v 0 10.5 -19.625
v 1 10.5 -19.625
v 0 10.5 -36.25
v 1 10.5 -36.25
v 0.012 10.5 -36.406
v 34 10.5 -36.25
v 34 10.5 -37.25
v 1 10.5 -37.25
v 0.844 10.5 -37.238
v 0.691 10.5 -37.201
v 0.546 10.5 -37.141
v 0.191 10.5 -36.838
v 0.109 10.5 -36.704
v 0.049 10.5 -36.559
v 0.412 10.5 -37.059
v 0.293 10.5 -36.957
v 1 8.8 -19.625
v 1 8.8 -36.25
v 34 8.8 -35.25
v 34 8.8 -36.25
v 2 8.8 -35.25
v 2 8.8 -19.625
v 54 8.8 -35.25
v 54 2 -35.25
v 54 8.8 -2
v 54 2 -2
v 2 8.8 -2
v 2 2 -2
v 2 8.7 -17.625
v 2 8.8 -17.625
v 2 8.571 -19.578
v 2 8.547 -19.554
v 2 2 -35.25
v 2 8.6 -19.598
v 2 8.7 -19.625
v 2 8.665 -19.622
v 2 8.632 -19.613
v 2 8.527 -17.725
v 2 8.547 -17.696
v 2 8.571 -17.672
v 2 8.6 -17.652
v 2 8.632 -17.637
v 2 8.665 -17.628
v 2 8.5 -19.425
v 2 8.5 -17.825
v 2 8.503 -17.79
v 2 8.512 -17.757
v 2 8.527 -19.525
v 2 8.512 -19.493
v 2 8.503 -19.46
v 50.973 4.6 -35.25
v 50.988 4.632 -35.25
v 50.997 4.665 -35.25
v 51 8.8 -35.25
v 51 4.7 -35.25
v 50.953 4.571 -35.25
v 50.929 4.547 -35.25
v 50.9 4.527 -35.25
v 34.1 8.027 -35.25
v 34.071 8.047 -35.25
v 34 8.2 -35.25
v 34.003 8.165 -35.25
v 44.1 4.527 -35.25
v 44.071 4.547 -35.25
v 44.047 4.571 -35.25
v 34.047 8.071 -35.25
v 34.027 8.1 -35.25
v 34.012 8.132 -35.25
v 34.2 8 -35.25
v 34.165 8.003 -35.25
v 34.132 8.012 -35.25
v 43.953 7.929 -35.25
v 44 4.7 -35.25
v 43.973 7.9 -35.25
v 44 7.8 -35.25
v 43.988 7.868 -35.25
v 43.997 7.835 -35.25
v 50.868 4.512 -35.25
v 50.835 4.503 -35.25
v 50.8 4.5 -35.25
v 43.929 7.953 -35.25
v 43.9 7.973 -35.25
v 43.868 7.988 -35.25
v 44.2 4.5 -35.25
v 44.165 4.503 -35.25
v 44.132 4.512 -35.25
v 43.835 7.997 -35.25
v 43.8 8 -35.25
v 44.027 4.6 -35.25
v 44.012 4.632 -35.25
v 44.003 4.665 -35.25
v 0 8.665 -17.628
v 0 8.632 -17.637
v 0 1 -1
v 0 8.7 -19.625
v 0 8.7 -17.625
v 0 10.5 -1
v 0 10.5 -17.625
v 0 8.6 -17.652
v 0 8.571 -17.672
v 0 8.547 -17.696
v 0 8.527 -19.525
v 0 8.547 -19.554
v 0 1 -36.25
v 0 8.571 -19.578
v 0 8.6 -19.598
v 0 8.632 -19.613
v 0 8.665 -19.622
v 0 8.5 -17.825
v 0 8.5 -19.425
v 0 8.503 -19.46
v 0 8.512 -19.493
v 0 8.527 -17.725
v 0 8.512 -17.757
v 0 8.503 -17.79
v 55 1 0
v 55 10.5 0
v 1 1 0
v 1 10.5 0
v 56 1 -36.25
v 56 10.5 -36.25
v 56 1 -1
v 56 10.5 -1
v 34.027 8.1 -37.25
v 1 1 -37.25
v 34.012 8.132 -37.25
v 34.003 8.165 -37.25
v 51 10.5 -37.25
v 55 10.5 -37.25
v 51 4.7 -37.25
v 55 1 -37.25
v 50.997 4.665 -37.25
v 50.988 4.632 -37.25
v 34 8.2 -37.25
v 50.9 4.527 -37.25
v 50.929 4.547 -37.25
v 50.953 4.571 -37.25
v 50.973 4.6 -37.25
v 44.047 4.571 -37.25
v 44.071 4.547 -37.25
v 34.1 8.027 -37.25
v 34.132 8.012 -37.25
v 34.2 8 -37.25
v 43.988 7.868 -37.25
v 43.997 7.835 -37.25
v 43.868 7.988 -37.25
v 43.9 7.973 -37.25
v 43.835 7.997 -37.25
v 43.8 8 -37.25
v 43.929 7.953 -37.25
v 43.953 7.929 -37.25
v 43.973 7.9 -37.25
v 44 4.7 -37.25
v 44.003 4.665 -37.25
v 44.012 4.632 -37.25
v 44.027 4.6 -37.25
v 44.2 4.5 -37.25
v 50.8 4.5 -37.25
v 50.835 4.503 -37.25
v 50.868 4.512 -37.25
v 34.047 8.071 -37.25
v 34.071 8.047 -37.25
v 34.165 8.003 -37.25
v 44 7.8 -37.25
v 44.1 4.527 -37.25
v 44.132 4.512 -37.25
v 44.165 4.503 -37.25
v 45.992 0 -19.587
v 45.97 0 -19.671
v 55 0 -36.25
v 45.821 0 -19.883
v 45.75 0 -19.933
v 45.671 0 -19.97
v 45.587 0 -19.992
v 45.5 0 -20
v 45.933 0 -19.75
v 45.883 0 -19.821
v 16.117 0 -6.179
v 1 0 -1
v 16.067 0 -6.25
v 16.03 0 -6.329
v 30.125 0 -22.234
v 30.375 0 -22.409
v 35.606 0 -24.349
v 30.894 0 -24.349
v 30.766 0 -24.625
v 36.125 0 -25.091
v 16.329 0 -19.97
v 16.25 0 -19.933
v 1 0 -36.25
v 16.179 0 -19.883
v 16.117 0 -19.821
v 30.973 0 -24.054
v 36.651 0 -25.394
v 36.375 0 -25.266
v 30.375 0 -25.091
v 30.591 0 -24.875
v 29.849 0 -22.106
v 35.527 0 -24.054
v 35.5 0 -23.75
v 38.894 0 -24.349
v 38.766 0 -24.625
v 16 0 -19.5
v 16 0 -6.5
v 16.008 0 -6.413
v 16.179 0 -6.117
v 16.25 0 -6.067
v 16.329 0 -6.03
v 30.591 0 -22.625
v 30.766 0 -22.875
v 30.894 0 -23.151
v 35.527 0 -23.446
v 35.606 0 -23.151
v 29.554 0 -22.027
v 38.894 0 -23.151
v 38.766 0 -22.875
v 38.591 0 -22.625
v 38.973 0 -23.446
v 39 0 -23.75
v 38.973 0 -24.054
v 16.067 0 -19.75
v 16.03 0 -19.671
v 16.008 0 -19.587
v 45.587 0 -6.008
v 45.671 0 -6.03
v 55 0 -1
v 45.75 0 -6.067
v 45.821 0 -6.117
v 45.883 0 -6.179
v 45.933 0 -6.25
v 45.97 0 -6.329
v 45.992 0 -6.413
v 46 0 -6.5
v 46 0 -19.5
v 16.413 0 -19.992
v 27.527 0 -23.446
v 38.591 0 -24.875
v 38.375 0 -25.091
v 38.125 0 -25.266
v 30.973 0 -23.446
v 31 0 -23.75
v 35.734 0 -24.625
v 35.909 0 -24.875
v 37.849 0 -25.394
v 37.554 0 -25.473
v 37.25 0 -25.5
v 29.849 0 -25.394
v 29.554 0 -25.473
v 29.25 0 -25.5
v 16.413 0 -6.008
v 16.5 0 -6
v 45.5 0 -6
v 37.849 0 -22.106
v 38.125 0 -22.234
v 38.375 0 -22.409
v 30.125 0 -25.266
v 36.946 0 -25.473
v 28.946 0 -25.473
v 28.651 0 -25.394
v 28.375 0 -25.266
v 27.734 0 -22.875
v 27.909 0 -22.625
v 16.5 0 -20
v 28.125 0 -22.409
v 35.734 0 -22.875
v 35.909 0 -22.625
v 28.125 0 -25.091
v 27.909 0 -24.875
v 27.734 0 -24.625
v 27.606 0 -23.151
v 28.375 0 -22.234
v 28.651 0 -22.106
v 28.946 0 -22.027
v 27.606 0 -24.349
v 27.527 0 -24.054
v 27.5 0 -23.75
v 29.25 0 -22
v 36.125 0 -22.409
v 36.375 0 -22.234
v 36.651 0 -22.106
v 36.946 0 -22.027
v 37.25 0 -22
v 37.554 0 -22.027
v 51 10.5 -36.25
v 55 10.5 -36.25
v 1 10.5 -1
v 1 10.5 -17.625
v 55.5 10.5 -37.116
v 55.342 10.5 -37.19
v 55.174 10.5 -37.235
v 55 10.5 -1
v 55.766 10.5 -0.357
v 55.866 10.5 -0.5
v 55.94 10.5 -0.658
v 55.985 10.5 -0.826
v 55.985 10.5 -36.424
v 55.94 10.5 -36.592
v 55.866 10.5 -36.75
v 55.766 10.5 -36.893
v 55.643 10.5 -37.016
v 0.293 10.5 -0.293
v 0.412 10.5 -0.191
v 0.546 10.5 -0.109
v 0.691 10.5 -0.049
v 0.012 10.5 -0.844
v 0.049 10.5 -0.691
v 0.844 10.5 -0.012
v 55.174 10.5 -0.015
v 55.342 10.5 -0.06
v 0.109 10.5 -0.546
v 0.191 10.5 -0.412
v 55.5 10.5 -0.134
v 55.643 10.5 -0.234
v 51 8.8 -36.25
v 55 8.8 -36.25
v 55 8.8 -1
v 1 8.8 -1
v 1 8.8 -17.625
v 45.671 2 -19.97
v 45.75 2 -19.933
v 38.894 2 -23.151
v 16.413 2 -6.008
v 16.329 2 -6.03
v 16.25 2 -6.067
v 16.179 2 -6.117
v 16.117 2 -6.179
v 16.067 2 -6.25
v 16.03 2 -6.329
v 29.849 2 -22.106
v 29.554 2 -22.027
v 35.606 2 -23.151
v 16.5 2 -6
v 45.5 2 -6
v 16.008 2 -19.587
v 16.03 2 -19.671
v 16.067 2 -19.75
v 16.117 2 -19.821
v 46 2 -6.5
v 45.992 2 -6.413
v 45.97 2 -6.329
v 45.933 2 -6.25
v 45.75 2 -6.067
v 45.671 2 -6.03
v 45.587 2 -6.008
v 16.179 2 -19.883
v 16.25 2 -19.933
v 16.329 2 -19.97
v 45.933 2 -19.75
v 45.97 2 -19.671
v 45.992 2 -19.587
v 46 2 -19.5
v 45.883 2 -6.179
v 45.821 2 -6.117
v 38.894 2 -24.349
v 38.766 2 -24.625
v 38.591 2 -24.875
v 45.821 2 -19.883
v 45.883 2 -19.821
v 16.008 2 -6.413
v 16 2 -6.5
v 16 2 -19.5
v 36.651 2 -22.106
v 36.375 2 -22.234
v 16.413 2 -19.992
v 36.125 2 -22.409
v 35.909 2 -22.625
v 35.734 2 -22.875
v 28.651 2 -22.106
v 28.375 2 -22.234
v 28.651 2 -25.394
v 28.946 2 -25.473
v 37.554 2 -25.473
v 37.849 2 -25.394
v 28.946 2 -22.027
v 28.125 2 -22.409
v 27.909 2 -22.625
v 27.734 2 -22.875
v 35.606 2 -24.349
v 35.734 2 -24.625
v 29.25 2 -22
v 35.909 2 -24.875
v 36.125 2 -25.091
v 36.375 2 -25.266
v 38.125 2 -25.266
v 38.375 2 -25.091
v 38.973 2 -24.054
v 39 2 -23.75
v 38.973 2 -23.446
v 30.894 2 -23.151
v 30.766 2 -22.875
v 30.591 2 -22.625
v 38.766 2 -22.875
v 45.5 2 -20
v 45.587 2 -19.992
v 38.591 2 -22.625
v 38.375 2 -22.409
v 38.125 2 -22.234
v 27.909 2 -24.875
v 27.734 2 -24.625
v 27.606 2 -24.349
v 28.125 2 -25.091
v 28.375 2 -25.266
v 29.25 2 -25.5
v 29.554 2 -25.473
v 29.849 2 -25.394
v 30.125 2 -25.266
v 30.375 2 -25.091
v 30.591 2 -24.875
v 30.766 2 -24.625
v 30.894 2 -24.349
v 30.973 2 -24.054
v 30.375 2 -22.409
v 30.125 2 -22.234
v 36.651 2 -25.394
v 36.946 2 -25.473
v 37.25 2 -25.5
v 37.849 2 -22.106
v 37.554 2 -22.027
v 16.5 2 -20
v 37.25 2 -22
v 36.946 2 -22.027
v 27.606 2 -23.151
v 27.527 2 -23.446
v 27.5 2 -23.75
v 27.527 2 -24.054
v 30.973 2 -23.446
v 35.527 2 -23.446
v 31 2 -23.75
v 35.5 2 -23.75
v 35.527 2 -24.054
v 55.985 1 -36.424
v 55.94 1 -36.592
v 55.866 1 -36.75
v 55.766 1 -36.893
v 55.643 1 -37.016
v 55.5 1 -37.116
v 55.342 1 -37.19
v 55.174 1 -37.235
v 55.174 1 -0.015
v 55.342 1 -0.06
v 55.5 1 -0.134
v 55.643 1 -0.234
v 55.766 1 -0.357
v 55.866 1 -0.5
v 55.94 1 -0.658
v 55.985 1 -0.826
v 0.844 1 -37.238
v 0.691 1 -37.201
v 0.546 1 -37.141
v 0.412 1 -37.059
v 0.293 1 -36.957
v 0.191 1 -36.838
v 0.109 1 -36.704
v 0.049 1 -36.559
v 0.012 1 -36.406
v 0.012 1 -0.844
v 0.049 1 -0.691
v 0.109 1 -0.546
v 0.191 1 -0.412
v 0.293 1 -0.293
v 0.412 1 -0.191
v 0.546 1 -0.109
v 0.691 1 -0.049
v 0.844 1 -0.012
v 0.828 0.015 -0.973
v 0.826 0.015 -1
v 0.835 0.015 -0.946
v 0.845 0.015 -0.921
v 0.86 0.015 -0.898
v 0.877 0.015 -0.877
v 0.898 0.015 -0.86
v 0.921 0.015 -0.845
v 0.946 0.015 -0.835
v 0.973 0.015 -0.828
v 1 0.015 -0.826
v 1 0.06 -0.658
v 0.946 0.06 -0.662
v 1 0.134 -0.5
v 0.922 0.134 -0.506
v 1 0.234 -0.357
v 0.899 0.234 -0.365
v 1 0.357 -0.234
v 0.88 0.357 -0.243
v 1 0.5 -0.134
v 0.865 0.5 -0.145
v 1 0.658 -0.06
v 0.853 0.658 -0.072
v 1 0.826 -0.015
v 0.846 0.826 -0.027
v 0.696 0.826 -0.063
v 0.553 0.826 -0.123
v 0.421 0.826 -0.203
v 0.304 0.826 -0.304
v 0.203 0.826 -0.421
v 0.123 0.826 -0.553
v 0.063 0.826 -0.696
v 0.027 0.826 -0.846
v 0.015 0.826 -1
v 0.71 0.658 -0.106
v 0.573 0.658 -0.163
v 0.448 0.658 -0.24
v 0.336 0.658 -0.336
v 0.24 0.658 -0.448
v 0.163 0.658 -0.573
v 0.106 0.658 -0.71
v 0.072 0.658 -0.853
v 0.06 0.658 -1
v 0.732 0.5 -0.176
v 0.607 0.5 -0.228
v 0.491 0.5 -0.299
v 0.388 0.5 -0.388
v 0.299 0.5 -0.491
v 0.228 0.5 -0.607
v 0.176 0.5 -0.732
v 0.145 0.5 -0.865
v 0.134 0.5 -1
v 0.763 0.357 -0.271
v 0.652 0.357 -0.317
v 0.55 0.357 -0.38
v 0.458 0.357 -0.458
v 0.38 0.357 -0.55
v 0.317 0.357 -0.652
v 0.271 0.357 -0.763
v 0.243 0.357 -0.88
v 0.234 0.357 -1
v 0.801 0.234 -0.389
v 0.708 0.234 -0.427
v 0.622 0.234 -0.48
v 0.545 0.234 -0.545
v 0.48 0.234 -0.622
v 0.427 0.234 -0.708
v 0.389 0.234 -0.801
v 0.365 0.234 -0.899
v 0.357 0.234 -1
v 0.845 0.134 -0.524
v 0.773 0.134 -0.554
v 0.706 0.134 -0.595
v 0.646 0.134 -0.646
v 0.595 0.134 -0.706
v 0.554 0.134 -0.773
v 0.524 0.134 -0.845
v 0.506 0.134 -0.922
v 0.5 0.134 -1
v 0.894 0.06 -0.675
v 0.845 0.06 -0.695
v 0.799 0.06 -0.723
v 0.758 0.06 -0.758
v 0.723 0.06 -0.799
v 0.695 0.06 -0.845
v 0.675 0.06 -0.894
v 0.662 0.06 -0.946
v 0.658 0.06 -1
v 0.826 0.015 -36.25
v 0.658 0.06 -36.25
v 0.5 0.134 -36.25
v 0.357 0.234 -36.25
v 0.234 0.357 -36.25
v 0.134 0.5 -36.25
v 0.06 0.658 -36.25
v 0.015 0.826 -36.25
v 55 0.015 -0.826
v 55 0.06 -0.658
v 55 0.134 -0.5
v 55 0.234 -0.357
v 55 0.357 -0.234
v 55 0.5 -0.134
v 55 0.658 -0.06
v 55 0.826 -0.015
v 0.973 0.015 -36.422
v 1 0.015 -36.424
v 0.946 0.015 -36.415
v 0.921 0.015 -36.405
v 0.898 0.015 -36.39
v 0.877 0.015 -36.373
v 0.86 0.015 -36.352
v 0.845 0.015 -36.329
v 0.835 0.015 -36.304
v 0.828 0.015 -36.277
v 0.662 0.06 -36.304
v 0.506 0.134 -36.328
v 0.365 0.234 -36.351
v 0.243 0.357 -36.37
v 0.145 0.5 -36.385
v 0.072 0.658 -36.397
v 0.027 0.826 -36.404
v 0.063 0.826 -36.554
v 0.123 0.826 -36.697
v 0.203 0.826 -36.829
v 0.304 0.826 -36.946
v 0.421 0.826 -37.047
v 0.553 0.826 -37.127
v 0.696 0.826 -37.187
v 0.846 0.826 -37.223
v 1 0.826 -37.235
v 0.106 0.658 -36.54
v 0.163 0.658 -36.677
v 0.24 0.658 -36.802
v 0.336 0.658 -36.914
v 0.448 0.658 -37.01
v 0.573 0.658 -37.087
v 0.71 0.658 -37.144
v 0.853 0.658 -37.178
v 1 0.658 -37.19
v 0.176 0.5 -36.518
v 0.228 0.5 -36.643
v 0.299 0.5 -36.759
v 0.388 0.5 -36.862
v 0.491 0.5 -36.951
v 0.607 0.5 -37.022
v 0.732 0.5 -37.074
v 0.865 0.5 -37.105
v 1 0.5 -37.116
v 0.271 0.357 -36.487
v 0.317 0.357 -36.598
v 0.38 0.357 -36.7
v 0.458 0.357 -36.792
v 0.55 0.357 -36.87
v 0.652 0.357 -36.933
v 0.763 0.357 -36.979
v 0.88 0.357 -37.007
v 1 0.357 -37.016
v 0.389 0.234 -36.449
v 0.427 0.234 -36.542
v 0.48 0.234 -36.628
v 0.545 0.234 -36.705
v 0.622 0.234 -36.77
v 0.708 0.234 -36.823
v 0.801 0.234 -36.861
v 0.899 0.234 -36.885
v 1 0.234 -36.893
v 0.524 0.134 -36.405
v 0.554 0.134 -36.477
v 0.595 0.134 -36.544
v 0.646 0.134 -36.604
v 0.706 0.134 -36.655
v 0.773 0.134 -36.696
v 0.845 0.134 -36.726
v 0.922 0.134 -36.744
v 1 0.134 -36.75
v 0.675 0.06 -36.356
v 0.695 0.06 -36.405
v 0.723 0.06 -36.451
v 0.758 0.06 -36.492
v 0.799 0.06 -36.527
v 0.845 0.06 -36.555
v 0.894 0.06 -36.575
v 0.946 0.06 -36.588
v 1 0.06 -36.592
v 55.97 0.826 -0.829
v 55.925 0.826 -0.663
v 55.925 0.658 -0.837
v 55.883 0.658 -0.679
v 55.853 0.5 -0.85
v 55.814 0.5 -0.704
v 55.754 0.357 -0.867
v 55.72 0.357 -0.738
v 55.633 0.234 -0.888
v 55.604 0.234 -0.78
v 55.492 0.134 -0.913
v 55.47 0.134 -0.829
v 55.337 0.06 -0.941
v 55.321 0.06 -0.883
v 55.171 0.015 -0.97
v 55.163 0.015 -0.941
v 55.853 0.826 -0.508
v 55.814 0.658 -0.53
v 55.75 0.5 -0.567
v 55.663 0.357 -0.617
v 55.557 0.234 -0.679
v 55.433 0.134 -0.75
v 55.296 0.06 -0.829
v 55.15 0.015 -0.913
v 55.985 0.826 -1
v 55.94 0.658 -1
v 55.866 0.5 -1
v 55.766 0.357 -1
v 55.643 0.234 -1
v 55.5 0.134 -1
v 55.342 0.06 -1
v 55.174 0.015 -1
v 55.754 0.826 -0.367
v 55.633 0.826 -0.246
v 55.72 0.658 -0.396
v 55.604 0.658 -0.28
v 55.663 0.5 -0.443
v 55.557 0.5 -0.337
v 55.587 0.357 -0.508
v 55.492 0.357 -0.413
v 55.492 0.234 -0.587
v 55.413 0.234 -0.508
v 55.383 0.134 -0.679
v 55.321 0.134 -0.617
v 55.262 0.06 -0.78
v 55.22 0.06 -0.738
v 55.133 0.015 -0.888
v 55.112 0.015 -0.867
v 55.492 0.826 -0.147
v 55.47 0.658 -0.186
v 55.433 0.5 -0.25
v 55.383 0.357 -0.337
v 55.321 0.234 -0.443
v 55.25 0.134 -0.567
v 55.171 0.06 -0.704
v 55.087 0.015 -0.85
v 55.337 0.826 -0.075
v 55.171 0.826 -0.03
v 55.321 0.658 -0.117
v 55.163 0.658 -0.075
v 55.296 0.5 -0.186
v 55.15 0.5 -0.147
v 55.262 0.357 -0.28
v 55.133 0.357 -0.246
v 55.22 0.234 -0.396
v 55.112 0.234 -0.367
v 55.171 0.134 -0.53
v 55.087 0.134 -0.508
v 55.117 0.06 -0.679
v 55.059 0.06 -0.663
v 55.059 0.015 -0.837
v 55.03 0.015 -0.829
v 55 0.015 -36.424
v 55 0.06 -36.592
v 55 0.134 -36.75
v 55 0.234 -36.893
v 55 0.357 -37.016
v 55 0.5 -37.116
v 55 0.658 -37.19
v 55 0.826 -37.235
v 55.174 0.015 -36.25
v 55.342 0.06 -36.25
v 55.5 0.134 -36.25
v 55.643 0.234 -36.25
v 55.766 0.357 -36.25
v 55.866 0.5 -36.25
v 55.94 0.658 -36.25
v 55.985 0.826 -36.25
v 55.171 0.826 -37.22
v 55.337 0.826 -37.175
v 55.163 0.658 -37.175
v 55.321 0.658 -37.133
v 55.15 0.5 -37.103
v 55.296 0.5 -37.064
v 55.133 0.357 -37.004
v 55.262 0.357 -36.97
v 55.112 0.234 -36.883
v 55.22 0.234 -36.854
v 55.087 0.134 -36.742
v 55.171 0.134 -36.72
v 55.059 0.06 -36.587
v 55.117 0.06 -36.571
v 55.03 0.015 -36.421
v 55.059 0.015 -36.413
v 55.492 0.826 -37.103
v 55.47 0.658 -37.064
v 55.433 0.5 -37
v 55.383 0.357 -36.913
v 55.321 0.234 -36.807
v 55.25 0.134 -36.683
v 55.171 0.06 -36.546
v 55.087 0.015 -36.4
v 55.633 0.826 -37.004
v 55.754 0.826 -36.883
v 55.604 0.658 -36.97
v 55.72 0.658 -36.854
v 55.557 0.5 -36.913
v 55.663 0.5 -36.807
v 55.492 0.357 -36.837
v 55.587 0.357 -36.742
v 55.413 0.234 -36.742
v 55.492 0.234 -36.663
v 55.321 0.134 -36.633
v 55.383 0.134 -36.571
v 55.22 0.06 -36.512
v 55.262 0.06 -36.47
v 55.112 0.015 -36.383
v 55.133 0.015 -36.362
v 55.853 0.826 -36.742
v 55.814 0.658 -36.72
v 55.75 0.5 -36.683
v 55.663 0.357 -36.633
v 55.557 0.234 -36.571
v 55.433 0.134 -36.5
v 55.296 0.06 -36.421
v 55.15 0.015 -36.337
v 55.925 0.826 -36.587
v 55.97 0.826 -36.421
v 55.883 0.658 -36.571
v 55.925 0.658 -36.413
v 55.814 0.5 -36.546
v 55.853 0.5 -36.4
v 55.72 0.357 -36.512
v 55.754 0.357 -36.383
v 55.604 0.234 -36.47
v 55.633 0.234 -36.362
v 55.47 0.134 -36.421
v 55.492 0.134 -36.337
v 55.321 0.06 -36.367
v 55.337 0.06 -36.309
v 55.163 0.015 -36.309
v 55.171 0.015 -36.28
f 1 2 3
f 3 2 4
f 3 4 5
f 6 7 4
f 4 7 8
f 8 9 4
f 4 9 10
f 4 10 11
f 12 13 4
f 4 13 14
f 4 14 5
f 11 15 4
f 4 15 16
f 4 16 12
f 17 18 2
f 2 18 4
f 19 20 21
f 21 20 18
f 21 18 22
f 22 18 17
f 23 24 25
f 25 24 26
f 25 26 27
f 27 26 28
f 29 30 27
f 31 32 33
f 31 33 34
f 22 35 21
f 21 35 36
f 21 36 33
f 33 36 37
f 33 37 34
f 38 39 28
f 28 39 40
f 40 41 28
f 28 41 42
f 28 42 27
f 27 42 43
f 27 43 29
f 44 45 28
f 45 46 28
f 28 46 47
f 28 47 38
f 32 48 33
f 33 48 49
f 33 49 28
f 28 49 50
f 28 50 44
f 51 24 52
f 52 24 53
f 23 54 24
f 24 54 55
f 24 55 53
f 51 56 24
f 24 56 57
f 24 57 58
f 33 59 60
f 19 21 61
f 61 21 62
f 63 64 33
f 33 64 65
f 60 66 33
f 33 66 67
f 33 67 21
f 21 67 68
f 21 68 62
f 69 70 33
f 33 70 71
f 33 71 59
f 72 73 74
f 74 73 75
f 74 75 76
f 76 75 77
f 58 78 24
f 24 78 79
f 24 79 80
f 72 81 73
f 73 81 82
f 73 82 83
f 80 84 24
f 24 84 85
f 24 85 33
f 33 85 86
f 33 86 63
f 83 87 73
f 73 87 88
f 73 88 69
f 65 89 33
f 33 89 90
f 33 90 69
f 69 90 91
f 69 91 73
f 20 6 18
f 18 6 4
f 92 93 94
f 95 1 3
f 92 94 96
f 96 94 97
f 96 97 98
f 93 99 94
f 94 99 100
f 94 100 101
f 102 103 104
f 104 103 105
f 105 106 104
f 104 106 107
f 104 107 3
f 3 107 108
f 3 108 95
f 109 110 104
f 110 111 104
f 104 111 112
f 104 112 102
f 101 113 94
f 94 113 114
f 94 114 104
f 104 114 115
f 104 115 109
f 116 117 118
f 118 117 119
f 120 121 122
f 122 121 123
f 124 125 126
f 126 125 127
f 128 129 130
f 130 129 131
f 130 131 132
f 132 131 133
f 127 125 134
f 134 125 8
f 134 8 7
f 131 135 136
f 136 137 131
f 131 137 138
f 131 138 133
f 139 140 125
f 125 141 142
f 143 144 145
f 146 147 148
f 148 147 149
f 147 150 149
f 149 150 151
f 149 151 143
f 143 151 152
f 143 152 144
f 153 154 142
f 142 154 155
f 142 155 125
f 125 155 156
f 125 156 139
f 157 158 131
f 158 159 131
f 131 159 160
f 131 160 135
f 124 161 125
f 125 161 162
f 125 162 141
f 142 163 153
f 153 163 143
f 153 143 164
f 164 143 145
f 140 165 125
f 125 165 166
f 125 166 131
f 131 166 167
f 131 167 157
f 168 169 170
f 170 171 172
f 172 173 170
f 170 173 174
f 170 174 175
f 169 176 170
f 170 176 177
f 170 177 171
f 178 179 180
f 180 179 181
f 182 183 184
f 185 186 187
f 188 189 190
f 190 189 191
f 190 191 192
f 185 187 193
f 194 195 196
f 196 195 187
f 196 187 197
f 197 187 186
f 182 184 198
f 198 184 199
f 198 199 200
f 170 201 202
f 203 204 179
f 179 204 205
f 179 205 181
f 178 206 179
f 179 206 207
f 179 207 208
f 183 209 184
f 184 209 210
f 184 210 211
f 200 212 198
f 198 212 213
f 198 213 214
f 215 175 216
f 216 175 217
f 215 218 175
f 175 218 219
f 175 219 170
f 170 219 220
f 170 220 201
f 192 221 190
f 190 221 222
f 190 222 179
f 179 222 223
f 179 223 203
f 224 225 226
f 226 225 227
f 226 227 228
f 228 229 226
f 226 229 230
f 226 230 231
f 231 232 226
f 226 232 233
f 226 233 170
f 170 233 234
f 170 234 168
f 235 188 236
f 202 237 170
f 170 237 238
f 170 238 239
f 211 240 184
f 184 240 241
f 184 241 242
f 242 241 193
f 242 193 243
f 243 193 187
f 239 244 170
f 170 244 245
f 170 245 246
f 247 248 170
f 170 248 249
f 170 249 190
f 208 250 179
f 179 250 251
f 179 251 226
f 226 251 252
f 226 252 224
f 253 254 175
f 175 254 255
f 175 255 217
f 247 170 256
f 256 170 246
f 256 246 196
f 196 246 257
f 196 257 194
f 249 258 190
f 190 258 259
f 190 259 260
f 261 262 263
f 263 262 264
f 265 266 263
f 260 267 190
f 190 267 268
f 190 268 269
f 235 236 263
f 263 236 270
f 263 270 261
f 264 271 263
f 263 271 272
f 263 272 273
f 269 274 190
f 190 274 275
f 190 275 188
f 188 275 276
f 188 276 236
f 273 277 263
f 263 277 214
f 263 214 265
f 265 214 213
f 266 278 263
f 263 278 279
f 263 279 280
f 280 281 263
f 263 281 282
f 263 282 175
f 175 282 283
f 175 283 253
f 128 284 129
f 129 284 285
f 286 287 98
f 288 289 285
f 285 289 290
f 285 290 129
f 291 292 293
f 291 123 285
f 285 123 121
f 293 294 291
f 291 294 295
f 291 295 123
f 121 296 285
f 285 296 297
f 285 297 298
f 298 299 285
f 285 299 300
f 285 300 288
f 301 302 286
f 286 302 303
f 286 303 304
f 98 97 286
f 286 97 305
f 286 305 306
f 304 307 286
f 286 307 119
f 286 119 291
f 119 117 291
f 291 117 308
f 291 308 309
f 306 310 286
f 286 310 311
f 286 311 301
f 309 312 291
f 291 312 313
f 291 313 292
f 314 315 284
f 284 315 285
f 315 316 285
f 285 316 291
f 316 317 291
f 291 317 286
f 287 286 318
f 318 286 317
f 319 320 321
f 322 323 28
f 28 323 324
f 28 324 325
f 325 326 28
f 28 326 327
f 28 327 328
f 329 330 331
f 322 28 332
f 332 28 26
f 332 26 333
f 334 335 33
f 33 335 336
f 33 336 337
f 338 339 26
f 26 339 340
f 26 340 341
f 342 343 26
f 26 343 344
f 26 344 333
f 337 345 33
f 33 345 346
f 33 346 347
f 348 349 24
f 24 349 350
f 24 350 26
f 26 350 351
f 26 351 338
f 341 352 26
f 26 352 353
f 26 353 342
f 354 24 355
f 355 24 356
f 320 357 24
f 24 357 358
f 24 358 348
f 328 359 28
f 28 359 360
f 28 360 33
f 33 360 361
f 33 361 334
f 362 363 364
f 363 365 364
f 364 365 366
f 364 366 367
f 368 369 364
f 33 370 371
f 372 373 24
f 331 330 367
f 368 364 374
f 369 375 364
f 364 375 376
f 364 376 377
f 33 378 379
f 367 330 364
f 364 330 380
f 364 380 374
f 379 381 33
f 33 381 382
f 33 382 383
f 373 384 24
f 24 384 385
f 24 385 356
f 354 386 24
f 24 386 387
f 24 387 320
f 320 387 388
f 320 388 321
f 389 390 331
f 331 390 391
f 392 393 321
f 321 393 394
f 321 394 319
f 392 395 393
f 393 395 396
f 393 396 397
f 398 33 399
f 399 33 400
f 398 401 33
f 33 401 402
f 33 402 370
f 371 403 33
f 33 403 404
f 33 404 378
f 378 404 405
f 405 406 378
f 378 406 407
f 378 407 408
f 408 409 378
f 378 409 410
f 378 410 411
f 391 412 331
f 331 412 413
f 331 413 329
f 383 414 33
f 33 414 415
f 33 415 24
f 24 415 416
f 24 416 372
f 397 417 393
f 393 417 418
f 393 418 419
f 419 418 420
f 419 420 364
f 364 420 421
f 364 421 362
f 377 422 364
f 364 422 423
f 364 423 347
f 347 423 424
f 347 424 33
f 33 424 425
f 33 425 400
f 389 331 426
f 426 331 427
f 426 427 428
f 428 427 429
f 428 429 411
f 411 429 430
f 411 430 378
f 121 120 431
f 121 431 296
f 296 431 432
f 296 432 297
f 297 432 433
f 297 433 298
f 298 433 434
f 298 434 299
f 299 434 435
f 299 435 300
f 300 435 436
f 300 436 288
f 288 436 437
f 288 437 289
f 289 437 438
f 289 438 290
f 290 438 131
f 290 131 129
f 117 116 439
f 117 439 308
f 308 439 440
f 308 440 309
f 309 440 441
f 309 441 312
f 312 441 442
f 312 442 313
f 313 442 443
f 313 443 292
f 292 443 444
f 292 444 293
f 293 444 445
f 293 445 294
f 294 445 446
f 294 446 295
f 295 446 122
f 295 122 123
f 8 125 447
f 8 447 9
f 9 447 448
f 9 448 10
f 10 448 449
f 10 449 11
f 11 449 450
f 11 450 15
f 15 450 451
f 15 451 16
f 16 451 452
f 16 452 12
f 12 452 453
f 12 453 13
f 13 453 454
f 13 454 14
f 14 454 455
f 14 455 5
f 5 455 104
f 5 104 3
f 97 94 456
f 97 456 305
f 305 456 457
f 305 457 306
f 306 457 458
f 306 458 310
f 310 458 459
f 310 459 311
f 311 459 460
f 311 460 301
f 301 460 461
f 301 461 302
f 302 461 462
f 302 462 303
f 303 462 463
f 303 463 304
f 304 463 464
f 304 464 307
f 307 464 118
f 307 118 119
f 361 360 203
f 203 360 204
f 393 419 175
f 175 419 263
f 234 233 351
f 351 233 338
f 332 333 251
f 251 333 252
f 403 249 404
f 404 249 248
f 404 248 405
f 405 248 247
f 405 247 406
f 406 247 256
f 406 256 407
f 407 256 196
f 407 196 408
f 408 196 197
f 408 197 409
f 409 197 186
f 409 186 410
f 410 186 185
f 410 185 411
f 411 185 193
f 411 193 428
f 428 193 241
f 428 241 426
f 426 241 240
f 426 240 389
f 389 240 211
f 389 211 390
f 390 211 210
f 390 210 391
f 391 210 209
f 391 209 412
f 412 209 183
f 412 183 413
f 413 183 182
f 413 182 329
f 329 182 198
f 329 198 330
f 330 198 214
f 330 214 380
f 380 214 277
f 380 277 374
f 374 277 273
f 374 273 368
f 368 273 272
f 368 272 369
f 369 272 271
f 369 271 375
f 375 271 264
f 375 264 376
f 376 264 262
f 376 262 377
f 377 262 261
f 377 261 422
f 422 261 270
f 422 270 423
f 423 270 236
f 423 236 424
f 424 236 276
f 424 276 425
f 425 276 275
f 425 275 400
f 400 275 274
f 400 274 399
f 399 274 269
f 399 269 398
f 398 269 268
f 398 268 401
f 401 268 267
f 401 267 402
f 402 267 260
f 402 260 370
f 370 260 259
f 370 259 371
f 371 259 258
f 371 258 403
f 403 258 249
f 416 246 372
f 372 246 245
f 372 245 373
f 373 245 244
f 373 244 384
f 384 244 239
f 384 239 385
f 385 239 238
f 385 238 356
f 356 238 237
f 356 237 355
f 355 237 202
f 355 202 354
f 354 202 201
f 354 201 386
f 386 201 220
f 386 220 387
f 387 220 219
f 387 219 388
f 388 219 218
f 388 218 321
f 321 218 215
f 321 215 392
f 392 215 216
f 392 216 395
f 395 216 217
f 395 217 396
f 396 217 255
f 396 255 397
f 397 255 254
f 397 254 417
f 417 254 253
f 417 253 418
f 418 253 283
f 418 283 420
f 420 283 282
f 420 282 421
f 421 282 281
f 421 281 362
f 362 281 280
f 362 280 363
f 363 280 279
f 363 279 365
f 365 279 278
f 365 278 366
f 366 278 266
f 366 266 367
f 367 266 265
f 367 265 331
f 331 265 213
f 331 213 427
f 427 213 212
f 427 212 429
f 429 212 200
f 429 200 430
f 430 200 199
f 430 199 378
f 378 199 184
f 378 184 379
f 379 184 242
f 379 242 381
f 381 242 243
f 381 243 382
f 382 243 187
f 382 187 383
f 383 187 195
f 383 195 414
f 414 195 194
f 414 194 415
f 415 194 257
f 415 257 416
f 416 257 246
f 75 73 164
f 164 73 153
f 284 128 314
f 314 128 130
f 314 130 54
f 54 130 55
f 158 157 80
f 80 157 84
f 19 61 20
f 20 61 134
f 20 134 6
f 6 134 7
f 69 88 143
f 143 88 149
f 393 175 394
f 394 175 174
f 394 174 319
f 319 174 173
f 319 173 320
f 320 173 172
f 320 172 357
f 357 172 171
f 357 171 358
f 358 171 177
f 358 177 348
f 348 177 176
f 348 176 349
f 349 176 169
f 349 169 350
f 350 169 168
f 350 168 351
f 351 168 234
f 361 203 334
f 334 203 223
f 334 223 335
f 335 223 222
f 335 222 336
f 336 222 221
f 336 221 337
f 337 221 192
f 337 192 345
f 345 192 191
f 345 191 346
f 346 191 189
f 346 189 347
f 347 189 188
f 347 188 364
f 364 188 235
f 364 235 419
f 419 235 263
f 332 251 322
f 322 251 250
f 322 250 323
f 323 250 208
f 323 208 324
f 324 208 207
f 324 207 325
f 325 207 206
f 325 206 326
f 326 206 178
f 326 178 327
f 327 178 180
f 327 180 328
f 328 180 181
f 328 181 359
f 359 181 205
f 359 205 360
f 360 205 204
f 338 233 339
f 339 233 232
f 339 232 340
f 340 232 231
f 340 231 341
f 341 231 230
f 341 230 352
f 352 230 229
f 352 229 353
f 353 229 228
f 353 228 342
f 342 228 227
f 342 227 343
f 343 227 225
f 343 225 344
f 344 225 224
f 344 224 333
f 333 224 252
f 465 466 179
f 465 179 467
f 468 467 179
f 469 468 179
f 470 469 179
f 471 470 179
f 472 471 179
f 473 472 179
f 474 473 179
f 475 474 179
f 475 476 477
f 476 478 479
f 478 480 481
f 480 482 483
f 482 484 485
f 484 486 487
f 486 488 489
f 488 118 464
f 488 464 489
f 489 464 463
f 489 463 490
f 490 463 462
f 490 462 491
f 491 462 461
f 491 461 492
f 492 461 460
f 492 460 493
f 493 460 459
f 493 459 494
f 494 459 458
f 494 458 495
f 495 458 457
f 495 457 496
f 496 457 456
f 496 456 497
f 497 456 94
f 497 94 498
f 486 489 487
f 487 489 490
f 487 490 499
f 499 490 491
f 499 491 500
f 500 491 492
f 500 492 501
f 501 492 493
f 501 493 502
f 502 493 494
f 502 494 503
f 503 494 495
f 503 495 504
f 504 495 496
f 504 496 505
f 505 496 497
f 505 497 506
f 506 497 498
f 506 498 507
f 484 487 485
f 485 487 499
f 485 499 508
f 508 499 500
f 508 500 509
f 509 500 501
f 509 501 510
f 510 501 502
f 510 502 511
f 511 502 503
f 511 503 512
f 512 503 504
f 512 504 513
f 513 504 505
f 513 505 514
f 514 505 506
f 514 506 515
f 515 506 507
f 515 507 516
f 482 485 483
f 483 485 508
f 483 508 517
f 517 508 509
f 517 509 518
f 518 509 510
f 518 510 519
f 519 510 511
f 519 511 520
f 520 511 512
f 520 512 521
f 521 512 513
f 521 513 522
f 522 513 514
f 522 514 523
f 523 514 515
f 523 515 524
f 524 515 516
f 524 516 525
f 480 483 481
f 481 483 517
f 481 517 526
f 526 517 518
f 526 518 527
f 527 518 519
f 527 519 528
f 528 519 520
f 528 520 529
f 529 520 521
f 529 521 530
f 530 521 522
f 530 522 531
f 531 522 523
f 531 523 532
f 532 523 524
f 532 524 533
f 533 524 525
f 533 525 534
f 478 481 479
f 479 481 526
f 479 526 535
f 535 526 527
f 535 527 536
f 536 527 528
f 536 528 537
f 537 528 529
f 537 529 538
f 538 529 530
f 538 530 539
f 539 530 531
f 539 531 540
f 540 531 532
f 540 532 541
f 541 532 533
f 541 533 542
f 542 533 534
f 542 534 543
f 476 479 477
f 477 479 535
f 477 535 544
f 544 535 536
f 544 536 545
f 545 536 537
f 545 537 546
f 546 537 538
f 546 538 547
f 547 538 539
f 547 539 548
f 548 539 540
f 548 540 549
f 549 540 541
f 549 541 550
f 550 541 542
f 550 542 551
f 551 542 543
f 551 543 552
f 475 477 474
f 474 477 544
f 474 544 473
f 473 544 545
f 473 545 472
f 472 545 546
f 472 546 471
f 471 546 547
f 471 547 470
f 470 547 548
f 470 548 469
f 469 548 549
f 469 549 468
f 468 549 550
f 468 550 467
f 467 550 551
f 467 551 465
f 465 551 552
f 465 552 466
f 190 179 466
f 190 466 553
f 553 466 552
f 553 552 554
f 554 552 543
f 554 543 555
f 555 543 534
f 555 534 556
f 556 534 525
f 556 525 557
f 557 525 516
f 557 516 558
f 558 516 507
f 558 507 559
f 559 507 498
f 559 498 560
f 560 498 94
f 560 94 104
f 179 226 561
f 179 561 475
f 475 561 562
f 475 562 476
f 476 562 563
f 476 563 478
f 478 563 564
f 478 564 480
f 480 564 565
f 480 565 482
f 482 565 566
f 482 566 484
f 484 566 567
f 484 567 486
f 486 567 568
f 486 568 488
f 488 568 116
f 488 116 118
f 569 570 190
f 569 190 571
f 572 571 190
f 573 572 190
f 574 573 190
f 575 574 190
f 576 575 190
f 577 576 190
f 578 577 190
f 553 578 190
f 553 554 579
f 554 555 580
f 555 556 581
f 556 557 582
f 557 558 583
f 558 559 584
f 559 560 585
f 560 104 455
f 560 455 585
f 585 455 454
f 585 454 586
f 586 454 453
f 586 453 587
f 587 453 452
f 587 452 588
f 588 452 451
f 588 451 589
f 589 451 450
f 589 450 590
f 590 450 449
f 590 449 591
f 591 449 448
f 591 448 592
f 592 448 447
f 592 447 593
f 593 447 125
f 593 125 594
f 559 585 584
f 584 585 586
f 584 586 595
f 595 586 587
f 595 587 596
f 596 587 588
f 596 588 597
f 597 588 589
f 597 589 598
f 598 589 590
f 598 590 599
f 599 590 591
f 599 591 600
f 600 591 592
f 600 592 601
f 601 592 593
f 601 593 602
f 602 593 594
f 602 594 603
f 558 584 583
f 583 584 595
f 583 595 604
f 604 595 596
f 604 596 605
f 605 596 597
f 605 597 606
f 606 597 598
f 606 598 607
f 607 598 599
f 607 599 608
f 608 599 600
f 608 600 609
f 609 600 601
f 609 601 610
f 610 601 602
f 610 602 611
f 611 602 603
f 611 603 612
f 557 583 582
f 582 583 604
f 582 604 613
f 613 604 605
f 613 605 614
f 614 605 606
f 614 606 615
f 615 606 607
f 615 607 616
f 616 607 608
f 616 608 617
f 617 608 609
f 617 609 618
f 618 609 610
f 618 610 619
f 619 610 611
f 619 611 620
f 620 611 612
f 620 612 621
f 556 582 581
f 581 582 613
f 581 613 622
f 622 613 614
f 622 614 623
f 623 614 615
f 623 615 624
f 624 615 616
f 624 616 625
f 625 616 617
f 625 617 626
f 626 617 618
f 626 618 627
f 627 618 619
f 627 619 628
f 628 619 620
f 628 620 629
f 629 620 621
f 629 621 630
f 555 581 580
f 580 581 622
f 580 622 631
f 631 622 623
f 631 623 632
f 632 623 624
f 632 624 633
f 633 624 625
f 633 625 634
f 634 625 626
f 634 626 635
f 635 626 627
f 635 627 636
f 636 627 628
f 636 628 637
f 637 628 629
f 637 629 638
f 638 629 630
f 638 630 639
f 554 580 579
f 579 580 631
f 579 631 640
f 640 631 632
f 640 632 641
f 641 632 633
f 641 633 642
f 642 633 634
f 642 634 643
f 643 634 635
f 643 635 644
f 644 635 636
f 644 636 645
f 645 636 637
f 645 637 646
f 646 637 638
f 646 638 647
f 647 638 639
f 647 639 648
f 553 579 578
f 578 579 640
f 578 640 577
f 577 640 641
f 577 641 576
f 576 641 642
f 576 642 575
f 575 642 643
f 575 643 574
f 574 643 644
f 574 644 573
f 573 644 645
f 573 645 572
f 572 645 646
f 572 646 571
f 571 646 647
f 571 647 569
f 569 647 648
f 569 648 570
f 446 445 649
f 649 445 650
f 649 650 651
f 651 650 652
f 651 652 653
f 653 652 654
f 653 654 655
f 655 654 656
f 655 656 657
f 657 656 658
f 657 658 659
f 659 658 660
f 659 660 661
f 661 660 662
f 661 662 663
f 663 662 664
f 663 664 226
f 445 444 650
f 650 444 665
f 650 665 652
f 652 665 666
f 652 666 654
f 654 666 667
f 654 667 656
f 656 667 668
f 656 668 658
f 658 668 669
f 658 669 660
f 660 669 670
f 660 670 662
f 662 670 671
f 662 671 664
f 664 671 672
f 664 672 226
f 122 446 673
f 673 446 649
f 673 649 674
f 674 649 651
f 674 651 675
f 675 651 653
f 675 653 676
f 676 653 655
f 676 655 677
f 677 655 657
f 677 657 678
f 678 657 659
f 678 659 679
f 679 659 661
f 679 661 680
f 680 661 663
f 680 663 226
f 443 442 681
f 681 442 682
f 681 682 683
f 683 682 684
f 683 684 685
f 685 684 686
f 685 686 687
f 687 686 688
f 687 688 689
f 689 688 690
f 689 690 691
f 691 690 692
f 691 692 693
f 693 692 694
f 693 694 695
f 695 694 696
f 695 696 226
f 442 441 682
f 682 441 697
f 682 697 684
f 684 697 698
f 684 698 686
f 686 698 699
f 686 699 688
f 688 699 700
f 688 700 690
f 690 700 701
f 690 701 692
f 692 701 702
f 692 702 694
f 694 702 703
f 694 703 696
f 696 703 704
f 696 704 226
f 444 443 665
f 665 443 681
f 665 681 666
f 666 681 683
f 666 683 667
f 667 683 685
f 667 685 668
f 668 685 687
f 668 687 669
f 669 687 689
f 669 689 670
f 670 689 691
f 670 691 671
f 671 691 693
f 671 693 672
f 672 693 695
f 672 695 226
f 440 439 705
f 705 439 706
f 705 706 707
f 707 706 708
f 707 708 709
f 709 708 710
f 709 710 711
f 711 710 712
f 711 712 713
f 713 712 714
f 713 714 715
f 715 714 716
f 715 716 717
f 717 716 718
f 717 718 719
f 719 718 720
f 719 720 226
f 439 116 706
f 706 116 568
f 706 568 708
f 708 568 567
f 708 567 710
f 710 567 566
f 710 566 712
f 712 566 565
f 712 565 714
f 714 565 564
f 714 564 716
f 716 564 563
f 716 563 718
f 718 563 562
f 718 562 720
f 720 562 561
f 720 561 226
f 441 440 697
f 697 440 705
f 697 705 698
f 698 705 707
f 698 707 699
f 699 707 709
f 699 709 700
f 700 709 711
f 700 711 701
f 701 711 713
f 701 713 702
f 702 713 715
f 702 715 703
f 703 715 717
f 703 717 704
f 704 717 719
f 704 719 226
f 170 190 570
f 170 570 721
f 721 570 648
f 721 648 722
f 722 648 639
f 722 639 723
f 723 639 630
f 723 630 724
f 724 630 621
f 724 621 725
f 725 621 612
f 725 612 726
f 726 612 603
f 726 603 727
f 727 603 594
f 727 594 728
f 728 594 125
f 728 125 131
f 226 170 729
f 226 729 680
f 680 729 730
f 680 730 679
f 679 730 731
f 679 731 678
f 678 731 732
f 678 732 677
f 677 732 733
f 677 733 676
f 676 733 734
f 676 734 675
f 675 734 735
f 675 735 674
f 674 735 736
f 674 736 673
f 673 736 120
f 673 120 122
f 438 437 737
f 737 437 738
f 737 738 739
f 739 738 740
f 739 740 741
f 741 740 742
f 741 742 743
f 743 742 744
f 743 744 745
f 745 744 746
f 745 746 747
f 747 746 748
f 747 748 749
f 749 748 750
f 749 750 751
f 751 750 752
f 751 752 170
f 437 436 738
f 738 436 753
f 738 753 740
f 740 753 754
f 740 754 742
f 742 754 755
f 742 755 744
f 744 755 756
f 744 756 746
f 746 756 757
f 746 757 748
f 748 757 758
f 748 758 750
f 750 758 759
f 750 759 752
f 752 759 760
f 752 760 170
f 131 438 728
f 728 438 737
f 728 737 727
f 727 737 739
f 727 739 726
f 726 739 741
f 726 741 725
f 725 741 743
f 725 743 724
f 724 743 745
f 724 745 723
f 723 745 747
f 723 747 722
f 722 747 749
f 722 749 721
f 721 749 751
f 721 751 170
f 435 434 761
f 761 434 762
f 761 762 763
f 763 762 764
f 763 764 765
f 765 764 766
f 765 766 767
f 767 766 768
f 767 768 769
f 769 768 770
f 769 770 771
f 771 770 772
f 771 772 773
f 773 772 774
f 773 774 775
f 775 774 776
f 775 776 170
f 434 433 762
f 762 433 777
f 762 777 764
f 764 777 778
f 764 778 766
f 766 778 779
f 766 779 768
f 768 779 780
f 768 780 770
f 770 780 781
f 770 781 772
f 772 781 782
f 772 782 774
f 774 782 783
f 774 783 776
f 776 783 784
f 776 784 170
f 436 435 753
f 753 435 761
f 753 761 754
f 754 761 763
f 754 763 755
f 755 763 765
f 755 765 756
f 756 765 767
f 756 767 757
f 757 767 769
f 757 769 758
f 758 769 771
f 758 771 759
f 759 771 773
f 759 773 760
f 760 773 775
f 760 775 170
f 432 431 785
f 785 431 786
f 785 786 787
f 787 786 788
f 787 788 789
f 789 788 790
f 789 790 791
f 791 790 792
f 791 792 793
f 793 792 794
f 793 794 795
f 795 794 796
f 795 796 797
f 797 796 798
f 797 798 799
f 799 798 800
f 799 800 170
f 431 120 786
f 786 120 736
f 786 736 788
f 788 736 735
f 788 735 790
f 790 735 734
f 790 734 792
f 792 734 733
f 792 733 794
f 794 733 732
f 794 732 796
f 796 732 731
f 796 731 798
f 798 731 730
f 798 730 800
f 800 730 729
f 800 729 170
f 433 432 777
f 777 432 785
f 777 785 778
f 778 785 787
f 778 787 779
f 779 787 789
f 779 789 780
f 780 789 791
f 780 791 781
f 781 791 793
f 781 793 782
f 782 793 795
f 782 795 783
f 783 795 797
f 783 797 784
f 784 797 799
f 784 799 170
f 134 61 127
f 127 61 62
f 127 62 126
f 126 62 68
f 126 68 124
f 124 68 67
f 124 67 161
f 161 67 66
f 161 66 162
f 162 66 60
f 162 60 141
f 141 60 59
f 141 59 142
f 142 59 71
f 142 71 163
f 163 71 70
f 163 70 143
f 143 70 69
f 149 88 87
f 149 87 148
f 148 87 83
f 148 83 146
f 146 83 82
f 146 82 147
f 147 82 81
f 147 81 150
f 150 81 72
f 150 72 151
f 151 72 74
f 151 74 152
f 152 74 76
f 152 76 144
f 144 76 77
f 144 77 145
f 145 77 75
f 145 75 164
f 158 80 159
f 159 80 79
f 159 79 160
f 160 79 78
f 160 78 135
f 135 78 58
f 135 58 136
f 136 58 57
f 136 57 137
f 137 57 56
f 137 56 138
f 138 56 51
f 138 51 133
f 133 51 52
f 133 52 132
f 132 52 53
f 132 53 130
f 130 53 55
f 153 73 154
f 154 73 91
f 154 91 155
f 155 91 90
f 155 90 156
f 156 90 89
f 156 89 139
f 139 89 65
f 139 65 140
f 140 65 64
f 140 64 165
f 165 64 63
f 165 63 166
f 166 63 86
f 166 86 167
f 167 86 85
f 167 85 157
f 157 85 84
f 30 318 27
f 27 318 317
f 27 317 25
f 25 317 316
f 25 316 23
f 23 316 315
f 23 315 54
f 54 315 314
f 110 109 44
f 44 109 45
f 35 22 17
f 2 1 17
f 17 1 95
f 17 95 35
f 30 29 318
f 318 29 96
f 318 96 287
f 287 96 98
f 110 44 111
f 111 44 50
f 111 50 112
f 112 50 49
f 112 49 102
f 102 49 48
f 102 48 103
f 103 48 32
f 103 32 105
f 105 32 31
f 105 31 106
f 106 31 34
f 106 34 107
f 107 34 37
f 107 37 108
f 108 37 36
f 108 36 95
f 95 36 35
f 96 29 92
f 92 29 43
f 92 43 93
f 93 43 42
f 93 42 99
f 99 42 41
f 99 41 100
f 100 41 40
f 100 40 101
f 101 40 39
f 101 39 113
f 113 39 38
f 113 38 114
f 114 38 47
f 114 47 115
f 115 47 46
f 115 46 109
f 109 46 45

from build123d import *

# Parameters (mm, degrees)
SKETCH1_W           = 56
SKETCH1_H           = 37.25
BOSS_EXTRUDE1_DEPTH = 2
SKETCH2_W           = 56
SKETCH2_H           = 37.25
SKETCH2_W_2         = 52
SKETCH2_H_2         = 33.25
BOSS_EXTRUDE2_DEPTH = 8.5
SKETCH5_W           = 54
SKETCH5_H           = 35.25
SKETCH5_W_2         = 52
SKETCH5_H_2         = 33.25
CUT_EXTRUDE1_DEPTH  = 1
FILLET1_R           = 1
SKETCH7_W           = 30
SKETCH7_H           = 14
CUT_EXTRUDE3_DEPTH  = 10
SKETCH8_R           = 1.75
CUT_EXTRUDE4_DEPTH  = 10
SKETCH9_W           = 7
SKETCH9_H           = 6
CUT_EXTRUDE5_DEPTH  = 3
SKETCH10_W          = 10
SKETCH10_H          = 2.5
CUT_EXTRUDE6_DEPTH  = 3
FILLET2_R           = 0.5
FILLET3_R           = 1
FILLET5_R           = 0.2
CUT_EXTRUDE8_DEPTH  = 0.7
CUT_EXTRUDE10_DEPTH = 5
FILLET6_R           = 0.2


with BuildPart() as part:
    # Sketch1 → Boss-Extrude1 (new body)
    with BuildSketch(Plane(origin=(0, 0, 0), x_dir=(1, 0, 0), z_dir=(0, 1, 0))):
        with Locations((28, 18.625)):
            Rectangle(SKETCH1_W, SKETCH1_H)
    extrude(amount=BOSS_EXTRUDE1_DEPTH)

    # Sketch2 → Boss-Extrude2 (add)
    with BuildSketch(Plane(origin=(0, 2, 0), x_dir=(1, 0, 0), z_dir=(0, 1, 0))):
        with Locations((28, 18.625)):
            Rectangle(SKETCH2_W, SKETCH2_H)
        with Locations((28, 18.625)):
            Rectangle(SKETCH2_W_2, SKETCH2_H_2, mode=Mode.SUBTRACT)
    extrude(amount=BOSS_EXTRUDE2_DEPTH)

    # Sketch5 → Cut-Extrude1 (cut)
    with BuildSketch(Plane(origin=(0, 10.5, 0), x_dir=(1, 0, 0), z_dir=(0, 1, 0))):
        with Locations((28, 18.625)):
            Rectangle(SKETCH5_W, SKETCH5_H)
        with Locations((28, 18.625)):
            Rectangle(SKETCH5_W_2, SKETCH5_H_2, mode=Mode.SUBTRACT)
        with Locations((28, 18.625)):
            Rectangle(SKETCH5_W_2, SKETCH5_H_2)
    extrude(amount=-CUT_EXTRUDE1_DEPTH, mode=Mode.SUBTRACT)

    # Fillet1
    fillet1_edges = [part.edges().sort_by_distance(p)[0] for p in [
        (0, 5.25, -37.25),
        (56, 5.25, -37.25),
        (56, 5.25, 0),
        (0, 5.25, 0),
    ]]
    fillet(fillet1_edges, radius=FILLET1_R)

    # Sketch7 → Cut-Extrude3 (cut)
    with BuildSketch(Plane(origin=(0, 2, 0), x_dir=(1, 0, 0), z_dir=(0, 1, 0))):
        with Locations((31, 13)):
            Rectangle(SKETCH7_W, SKETCH7_H)
    extrude(amount=-CUT_EXTRUDE3_DEPTH, mode=Mode.SUBTRACT)

    # Sketch8 → Cut-Extrude4 (cut)
    with BuildSketch(Plane.XZ):
        with Locations((29.24999924, -23.74999914)):
            Circle(SKETCH8_R)
        with Locations((37.25000102, -23.74999914)):
            Circle(SKETCH8_R)
    extrude(amount=-CUT_EXTRUDE4_DEPTH, mode=Mode.SUBTRACT)

    # Sketch9 → Cut-Extrude5 (cut)
    with BuildSketch(Plane(origin=(0, 0, -37.25), x_dir=(-1, 0, 0), z_dir=(0, 0, -1))):
        with Locations((-47.5, 7.5)):
            Rectangle(SKETCH9_W, SKETCH9_H)
    extrude(amount=-CUT_EXTRUDE5_DEPTH, mode=Mode.SUBTRACT)

    # Sketch10 → Cut-Extrude6 (cut)
    with BuildSketch(Plane(origin=(0, 0, -37.25), x_dir=(-1, 0, 0), z_dir=(0, 0, -1))):
        with Locations((-39, 9.25)):
            Rectangle(SKETCH10_W, SKETCH10_H)
    extrude(amount=-CUT_EXTRUDE6_DEPTH, mode=Mode.SUBTRACT)

    # Fillet2
    fillet2_edges = [part.edges().sort_by_distance(p)[0] for p in [
        (16, 1, -6),
        (16, 1, -20),
        (46, 1, -20),
        (46, 1, -6),
    ]]
    fillet(fillet2_edges, radius=FILLET2_R)

    # Fillet3
    fillet3_edges = [part.edges().sort_by_distance(p)[0] for p in [
        (28, 0, -37.25),
        (0, 0, -18.625),
        (56, 0, -18.625),
        (28, 0, 0),
        (0.292893219, 0, -0.292893219),
        (0.292893219, 0, -36.957106781),
        (55.707106781, 0, -0.292893219),
        (55.707106781, 0, -36.957106781),
    ]]
    fillet(fillet3_edges, radius=FILLET3_R)

    # Fillet5
    fillet5_edges = [part.edges().sort_by_distance(p)[0] for p in [
        (51, 4.5, -36.25),
        (44, 4.5, -36.25),
        (44, 8, -36.25),
        (34, 8, -36.25),
    ]]
    fillet(fillet5_edges, radius=FILLET5_R)

    # Sketch12 → Cut-Extrude8 (cut)
    with BuildSketch(Plane(origin=(0, 9.5, 0), x_dir=(1, 0, 0), z_dir=(0, 1, 0))):
        Polygon((34, 35.25), (34, 36.25), (1, 36.25), (1, 1), (55, 1), (55, 36.25), (51, 36.25), (51, 35.25), (54, 35.25), (54, 2), (2, 2), (2, 35.25), align=None)
    extrude(amount=-CUT_EXTRUDE8_DEPTH, mode=Mode.SUBTRACT)

    # Sketch13 → Cut-Extrude10 (cut)
    with BuildSketch(Plane.ZY):
        Polygon((-18.625, 8.5), (-19.625, 8.5), (-19.625, 10.5), (-17.625, 10.5), (-17.625, 8.5), align=None)
    extrude(amount=-CUT_EXTRUDE10_DEPTH, mode=Mode.SUBTRACT)

    # Fillet6
    fillet6_edges = [part.edges().sort_by_distance(p)[0] for p in [
        (1, 8.5, -17.625),
        (1, 8.5, -19.625),
    ]]
    fillet(fillet6_edges, radius=FILLET6_R)


solid = part.part
